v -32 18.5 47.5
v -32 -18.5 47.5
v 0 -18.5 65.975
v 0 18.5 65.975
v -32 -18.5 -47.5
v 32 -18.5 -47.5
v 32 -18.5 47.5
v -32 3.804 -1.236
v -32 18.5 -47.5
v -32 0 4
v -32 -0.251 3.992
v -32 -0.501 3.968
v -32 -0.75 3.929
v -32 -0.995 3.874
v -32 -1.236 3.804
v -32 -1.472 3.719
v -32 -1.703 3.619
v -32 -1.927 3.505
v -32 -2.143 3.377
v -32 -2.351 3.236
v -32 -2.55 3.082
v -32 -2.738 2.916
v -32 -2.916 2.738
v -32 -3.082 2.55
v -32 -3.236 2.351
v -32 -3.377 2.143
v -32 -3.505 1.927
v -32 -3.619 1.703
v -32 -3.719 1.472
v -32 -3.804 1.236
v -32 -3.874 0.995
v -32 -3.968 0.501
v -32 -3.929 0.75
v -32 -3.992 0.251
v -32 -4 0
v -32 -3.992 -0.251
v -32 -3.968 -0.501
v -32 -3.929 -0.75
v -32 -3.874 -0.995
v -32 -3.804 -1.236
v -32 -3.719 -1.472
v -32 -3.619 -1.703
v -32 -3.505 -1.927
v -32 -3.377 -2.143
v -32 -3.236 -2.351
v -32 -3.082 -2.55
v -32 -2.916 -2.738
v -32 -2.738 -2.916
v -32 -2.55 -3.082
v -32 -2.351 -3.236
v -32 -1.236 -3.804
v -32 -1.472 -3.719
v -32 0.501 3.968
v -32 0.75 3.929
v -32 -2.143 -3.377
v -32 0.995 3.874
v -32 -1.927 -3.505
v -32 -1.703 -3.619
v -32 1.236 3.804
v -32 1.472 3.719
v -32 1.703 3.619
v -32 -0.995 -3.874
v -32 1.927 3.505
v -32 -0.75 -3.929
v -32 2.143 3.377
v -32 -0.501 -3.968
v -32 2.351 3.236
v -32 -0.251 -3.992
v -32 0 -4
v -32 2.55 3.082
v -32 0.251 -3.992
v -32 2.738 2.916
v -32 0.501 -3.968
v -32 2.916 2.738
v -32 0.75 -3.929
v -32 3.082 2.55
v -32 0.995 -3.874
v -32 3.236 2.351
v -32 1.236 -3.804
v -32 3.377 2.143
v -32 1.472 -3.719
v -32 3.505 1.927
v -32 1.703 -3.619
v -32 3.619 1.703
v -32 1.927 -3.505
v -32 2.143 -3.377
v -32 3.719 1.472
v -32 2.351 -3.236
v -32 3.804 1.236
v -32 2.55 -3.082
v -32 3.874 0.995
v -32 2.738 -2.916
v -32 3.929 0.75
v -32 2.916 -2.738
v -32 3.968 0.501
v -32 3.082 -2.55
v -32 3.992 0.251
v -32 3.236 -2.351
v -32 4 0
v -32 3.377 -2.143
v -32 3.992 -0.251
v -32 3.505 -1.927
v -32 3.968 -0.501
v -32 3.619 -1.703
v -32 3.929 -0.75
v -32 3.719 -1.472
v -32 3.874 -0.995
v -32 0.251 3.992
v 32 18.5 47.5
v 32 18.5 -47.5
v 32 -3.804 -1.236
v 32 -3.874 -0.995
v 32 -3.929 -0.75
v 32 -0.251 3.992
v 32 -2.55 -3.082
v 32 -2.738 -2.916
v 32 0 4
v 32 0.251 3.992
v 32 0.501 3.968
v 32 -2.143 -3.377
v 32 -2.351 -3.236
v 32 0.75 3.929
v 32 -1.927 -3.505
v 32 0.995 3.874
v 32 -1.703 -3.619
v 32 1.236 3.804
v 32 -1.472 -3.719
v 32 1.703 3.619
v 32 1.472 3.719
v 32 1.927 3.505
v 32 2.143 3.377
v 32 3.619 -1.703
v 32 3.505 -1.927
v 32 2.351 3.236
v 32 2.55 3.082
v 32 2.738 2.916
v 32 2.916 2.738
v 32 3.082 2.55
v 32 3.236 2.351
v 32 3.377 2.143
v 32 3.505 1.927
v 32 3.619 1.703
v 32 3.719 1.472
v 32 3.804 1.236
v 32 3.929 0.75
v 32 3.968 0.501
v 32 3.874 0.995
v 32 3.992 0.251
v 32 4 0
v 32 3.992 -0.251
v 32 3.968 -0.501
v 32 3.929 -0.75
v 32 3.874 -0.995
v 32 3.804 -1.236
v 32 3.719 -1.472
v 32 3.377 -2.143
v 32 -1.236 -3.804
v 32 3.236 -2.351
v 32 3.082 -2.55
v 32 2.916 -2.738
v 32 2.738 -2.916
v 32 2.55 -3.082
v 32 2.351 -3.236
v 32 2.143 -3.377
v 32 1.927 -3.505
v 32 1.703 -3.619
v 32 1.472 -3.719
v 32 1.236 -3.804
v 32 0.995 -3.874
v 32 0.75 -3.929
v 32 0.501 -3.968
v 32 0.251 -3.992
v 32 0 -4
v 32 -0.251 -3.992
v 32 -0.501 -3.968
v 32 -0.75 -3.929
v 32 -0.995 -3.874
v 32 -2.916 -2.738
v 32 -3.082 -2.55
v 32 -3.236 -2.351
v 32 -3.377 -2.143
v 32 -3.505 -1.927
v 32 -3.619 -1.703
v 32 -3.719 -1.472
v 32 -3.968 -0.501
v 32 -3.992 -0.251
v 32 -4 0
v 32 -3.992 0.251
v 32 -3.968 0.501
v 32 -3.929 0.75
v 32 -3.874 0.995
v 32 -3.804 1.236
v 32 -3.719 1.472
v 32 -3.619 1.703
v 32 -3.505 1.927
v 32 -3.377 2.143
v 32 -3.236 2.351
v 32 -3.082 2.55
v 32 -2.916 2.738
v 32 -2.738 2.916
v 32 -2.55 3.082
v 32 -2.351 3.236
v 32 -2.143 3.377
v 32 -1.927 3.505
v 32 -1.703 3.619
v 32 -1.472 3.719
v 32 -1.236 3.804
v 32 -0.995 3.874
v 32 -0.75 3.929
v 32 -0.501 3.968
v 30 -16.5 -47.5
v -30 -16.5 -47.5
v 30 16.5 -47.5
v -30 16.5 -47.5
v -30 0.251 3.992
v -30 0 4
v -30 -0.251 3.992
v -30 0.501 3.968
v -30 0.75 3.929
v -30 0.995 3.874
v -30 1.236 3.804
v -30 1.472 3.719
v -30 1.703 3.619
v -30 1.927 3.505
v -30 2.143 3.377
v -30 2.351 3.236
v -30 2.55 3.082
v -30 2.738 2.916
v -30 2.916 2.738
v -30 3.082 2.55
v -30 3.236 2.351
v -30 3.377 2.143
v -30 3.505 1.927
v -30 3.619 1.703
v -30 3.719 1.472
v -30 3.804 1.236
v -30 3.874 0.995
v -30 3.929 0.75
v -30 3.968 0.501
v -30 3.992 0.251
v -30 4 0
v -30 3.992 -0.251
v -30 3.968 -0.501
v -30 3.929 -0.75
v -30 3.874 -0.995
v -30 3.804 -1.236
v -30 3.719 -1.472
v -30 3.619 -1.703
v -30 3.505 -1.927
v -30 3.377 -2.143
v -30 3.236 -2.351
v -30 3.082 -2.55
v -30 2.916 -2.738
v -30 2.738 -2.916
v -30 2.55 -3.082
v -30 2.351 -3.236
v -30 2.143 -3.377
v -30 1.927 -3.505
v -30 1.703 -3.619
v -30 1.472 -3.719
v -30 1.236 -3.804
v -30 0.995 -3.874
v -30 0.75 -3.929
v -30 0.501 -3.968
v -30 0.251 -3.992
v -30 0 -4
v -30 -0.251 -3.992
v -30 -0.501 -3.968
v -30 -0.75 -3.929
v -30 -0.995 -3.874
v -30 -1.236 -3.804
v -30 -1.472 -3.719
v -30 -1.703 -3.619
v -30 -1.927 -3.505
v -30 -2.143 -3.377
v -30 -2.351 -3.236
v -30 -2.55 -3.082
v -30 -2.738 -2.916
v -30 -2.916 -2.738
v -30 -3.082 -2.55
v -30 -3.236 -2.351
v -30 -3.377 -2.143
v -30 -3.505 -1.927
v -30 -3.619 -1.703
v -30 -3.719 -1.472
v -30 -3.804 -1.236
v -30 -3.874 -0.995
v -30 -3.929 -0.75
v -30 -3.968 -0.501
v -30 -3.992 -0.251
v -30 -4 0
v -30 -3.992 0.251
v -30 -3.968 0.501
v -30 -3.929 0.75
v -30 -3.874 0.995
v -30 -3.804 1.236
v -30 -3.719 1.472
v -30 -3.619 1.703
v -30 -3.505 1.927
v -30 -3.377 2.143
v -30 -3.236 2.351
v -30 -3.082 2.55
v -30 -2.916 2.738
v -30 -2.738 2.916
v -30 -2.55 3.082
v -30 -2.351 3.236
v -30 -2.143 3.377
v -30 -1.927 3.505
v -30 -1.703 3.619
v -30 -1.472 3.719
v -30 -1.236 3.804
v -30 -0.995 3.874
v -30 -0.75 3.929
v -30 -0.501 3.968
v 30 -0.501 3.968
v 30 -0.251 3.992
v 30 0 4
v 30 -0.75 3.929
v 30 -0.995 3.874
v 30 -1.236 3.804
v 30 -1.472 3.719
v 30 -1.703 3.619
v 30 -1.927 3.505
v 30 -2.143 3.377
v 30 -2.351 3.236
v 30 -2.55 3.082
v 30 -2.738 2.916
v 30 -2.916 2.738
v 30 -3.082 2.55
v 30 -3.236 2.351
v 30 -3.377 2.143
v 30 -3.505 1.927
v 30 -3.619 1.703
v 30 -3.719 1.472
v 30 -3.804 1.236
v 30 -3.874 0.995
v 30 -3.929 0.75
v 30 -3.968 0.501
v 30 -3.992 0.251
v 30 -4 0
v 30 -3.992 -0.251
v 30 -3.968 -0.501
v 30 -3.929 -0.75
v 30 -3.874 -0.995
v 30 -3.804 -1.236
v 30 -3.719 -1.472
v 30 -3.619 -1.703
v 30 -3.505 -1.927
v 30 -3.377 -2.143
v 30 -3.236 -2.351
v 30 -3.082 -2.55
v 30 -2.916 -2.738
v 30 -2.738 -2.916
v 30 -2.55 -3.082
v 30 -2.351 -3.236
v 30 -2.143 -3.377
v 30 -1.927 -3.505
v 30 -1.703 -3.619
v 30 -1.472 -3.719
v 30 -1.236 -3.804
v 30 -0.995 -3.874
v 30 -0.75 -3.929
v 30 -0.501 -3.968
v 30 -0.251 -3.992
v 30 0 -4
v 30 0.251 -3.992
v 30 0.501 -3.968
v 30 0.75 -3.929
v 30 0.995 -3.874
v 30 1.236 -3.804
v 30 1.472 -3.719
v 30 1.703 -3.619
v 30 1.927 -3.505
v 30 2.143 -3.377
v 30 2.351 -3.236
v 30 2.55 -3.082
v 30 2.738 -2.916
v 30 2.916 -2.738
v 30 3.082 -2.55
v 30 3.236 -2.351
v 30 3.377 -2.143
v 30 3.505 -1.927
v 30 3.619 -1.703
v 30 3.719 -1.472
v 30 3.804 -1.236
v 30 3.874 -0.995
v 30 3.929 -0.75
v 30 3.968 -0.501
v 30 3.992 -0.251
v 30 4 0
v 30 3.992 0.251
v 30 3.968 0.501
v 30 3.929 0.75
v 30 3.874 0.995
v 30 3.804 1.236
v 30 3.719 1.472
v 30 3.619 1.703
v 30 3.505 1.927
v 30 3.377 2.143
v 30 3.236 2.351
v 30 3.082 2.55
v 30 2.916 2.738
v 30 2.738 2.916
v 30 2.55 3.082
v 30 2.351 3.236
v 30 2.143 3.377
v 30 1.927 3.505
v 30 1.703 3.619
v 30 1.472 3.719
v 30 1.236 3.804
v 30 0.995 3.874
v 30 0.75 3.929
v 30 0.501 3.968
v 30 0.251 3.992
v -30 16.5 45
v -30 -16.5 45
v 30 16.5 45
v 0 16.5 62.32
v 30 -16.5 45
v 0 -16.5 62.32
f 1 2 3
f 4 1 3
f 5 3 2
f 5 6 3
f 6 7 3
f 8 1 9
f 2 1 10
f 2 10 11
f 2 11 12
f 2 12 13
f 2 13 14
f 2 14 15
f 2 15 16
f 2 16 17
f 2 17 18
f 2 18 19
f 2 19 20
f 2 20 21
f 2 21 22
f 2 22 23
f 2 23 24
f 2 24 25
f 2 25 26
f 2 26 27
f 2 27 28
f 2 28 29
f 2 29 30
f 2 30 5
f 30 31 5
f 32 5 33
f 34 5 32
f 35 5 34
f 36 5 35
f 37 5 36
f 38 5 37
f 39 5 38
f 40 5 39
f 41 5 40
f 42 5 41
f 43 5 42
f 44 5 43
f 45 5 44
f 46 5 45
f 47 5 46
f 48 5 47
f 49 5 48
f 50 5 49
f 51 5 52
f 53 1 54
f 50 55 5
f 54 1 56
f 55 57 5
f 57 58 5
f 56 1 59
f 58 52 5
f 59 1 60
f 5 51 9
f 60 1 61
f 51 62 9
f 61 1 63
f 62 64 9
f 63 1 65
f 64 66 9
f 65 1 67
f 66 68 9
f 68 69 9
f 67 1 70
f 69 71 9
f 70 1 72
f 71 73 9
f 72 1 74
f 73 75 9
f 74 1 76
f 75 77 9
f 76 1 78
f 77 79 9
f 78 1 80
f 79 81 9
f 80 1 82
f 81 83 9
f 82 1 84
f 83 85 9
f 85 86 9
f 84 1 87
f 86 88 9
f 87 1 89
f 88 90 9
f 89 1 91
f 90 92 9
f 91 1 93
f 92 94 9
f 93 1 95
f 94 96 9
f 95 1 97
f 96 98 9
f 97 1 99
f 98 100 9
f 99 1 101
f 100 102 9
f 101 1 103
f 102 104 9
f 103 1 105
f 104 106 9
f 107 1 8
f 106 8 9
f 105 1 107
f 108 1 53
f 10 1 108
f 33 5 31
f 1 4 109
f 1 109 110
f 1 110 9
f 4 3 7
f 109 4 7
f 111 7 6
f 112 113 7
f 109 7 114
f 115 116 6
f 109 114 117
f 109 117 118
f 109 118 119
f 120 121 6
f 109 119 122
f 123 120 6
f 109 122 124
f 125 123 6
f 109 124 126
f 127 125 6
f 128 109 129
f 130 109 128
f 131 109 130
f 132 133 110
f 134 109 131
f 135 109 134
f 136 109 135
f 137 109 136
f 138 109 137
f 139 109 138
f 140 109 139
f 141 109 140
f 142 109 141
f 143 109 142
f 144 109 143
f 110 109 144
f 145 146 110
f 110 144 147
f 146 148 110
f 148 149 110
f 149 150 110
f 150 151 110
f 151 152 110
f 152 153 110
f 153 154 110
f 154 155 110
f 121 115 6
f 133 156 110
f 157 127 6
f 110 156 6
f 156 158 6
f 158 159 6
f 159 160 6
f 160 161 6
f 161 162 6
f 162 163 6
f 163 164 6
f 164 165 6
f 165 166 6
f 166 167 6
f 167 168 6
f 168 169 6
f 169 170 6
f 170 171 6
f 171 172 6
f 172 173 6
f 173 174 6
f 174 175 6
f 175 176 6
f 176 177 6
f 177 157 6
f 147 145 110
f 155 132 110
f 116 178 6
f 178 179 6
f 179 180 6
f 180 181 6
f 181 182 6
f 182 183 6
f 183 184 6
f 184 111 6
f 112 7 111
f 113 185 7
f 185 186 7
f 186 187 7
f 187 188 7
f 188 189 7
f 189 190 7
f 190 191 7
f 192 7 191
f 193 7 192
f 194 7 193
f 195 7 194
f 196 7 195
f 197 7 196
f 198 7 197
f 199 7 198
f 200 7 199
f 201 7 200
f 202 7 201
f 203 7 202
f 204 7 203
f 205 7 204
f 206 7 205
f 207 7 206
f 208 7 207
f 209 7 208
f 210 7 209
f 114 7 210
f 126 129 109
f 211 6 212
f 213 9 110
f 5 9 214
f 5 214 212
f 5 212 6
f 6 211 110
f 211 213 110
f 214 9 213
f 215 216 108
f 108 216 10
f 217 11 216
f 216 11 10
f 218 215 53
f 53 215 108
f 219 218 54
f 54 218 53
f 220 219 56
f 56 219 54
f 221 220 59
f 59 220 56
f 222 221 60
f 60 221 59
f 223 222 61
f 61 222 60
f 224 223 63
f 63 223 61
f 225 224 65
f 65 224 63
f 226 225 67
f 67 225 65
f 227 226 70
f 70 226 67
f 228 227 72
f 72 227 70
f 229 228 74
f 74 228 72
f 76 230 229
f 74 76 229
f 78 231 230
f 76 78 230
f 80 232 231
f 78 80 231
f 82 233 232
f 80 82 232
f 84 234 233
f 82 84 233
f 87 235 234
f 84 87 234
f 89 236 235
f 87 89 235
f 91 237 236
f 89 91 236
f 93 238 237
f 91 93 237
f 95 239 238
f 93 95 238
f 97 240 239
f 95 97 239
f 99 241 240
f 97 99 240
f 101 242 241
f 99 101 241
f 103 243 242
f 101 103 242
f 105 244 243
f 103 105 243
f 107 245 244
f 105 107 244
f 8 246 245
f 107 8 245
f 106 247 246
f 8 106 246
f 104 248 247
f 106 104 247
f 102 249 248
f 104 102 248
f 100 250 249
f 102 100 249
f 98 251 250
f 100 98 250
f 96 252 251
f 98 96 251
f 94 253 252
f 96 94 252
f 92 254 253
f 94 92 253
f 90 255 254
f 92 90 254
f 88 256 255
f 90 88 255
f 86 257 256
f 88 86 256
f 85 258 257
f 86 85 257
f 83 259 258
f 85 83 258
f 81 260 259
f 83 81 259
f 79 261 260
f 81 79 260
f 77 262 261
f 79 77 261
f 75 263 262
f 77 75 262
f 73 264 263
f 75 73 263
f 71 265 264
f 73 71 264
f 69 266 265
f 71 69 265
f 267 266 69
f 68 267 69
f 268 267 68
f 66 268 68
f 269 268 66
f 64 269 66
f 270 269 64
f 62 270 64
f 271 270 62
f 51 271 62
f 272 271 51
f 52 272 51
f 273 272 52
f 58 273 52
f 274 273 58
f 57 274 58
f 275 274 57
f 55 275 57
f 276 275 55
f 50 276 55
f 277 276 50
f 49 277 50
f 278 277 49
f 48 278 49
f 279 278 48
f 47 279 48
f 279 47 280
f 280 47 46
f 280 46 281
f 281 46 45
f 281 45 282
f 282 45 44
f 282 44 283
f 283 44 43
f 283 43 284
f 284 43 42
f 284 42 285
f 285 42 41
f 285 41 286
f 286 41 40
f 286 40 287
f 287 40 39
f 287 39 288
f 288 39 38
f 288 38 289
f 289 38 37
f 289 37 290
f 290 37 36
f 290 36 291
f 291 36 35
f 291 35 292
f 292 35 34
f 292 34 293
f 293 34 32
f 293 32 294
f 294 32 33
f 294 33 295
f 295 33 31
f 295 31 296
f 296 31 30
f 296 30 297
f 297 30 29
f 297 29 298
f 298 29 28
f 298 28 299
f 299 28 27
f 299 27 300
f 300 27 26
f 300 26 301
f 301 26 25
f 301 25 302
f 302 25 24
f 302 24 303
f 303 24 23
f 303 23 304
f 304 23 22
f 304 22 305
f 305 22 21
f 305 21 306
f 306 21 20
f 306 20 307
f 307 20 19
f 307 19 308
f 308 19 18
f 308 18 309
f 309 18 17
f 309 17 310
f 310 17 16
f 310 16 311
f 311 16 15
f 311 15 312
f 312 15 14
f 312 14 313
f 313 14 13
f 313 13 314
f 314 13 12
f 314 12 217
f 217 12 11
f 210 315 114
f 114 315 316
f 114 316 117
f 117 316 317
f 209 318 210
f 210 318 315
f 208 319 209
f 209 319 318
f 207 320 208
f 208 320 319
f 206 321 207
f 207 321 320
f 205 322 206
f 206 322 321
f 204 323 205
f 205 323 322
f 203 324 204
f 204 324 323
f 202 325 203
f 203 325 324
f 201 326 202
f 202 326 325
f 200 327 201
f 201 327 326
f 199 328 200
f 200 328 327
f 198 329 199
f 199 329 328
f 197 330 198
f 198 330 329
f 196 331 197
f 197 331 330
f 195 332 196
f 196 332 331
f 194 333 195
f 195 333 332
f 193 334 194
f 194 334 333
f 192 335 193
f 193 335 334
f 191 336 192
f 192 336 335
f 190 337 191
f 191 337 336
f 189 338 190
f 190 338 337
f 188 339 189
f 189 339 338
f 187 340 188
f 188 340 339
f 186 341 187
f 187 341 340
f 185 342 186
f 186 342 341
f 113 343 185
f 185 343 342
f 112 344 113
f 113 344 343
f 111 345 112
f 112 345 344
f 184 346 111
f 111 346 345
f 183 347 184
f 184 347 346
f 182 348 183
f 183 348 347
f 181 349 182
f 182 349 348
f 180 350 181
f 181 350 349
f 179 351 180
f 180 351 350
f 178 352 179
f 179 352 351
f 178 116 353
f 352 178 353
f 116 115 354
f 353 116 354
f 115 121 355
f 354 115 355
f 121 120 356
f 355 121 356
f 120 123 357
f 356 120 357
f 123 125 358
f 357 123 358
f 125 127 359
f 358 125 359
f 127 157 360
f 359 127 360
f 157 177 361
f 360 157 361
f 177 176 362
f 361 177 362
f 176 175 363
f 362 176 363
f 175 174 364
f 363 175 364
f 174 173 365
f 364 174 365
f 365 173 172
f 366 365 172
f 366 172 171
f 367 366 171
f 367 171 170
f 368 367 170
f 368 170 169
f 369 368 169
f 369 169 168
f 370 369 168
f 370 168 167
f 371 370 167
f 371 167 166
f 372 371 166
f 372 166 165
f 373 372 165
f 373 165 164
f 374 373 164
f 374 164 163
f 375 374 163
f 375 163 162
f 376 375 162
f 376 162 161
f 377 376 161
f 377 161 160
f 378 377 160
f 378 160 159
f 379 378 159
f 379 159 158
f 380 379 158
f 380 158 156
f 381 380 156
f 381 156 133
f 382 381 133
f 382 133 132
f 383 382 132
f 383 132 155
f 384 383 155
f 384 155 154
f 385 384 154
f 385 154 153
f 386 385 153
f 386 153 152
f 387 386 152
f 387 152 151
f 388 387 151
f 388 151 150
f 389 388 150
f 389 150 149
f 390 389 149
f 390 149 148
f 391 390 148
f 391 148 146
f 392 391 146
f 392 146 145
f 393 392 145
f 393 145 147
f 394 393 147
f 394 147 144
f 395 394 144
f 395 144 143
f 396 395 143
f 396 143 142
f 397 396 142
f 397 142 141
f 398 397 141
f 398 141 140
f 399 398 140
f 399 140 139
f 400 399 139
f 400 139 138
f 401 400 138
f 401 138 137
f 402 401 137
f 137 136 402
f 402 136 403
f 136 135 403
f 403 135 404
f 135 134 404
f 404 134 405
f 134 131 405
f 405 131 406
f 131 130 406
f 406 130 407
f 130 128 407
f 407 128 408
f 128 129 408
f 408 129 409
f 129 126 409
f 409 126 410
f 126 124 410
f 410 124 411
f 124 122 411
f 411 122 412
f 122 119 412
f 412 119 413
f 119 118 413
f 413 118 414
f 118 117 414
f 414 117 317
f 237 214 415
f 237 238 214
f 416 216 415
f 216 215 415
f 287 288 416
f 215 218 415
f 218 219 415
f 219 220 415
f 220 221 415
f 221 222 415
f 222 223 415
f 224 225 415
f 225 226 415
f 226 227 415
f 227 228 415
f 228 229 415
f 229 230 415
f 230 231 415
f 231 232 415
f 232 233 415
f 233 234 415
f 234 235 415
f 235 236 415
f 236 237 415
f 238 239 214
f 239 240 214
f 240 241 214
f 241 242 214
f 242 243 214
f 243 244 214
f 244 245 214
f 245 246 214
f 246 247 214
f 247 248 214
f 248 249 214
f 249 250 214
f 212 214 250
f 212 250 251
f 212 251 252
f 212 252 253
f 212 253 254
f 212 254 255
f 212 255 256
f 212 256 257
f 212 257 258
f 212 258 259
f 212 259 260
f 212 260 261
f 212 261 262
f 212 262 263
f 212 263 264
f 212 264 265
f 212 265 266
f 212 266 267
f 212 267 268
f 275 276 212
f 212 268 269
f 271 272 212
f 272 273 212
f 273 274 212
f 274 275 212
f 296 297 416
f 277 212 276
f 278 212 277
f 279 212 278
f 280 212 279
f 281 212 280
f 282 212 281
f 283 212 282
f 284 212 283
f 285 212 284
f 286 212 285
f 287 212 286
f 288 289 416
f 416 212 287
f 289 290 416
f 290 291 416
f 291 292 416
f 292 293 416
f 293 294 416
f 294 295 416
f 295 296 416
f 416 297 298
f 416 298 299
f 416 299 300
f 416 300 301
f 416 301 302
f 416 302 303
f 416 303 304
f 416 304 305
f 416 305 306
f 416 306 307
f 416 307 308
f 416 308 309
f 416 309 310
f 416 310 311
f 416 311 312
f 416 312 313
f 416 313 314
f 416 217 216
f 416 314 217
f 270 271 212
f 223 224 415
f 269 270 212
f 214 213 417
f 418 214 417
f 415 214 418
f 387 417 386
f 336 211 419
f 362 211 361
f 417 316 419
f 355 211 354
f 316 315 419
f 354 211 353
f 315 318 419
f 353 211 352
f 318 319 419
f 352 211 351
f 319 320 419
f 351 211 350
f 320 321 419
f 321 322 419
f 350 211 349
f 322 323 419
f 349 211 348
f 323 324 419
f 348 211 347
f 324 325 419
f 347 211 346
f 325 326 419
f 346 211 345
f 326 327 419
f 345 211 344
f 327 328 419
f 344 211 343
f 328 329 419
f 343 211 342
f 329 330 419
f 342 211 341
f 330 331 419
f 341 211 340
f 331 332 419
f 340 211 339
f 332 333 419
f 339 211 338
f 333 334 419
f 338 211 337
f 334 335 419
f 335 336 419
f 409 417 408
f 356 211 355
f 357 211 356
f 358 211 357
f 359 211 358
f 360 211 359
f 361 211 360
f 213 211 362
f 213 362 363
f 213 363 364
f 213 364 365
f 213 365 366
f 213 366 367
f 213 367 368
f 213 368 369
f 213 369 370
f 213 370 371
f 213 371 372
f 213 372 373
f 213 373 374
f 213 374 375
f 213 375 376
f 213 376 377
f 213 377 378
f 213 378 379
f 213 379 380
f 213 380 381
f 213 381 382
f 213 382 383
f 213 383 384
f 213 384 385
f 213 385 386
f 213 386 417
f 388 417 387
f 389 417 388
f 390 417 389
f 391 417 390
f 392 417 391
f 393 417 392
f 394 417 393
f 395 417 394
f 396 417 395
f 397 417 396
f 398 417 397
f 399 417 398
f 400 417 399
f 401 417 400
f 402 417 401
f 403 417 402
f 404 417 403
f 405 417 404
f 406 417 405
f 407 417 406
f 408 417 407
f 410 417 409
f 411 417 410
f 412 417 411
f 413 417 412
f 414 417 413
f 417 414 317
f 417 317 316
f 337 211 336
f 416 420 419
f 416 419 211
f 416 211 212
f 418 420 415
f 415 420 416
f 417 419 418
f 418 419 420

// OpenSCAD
$fn = 100; // Set circles to high-precision

// Functions for calculating the half-hexagons
function edge_length(width) = (width/2) / cos(30); // CAH
function point_height(width) = (width/2) * tan(30); // TOA
function leg(width) = edge_length(width) * sqrt(1/2);
function x_offset(width) = (width/2) - leg(width) * cos(15);
function y_offset(width, length) = length/2 - (leg(width) * sin(15));

// Function for the hexagon cutout
function hex_len(width) = 2 * (cos(30) * width);


// Core size variables
h = 33;
w = 60;
l = 90;

// Values for interior space
h_pad = 4;
w_pad = 4;
l_pad = 5;

// The hexagon cutout
h_cutout = 3;
hex_edge = edge_length(w/1.6);

rotate([-90,00,0]){
	difference(){
		// The exterior shape
		union(){
			cube([w+w_pad, l+l_pad, h+h_pad], center=true); // Center Cube
			translate([x_offset(w+w_pad),-y_offset(w+w_pad,l+l_pad),0]){
				rotate([0,0,30]) cube([edge_length(w+w_pad),edge_length(w+w_pad),h+h_pad], center=true);
			}
			translate([-x_offset(w+w_pad),-y_offset(w+w_pad,l+l_pad),0]){
				rotate([0,0,-30]) cube([edge_length(w+w_pad),edge_length(w+w_pad),h+h_pad], center=true);
			}
		}

		// The interior shape
		translate([0,0,0]){
			union(){
				cube([w, l, h], center=true); // Center Cube
				translate([x_offset(w),-y_offset(w,l),0]){
					rotate([0,0,30]) cube([edge_length(w),edge_length(w),h], center=true);
				}
				translate([-x_offset(w),-y_offset(w,l),0]){
					rotate([0,0,-30]) cube([edge_length(w),edge_length(w),h], center=true);
				}
				translate([0,y_offset(w,l),0]){
					rotate([0,0,0]) cube([w,edge_length(w),h], center=true);
				}
				rotate([0,90,0]) cylinder(100, r=4, center=true);
			}
		}
	}
}
